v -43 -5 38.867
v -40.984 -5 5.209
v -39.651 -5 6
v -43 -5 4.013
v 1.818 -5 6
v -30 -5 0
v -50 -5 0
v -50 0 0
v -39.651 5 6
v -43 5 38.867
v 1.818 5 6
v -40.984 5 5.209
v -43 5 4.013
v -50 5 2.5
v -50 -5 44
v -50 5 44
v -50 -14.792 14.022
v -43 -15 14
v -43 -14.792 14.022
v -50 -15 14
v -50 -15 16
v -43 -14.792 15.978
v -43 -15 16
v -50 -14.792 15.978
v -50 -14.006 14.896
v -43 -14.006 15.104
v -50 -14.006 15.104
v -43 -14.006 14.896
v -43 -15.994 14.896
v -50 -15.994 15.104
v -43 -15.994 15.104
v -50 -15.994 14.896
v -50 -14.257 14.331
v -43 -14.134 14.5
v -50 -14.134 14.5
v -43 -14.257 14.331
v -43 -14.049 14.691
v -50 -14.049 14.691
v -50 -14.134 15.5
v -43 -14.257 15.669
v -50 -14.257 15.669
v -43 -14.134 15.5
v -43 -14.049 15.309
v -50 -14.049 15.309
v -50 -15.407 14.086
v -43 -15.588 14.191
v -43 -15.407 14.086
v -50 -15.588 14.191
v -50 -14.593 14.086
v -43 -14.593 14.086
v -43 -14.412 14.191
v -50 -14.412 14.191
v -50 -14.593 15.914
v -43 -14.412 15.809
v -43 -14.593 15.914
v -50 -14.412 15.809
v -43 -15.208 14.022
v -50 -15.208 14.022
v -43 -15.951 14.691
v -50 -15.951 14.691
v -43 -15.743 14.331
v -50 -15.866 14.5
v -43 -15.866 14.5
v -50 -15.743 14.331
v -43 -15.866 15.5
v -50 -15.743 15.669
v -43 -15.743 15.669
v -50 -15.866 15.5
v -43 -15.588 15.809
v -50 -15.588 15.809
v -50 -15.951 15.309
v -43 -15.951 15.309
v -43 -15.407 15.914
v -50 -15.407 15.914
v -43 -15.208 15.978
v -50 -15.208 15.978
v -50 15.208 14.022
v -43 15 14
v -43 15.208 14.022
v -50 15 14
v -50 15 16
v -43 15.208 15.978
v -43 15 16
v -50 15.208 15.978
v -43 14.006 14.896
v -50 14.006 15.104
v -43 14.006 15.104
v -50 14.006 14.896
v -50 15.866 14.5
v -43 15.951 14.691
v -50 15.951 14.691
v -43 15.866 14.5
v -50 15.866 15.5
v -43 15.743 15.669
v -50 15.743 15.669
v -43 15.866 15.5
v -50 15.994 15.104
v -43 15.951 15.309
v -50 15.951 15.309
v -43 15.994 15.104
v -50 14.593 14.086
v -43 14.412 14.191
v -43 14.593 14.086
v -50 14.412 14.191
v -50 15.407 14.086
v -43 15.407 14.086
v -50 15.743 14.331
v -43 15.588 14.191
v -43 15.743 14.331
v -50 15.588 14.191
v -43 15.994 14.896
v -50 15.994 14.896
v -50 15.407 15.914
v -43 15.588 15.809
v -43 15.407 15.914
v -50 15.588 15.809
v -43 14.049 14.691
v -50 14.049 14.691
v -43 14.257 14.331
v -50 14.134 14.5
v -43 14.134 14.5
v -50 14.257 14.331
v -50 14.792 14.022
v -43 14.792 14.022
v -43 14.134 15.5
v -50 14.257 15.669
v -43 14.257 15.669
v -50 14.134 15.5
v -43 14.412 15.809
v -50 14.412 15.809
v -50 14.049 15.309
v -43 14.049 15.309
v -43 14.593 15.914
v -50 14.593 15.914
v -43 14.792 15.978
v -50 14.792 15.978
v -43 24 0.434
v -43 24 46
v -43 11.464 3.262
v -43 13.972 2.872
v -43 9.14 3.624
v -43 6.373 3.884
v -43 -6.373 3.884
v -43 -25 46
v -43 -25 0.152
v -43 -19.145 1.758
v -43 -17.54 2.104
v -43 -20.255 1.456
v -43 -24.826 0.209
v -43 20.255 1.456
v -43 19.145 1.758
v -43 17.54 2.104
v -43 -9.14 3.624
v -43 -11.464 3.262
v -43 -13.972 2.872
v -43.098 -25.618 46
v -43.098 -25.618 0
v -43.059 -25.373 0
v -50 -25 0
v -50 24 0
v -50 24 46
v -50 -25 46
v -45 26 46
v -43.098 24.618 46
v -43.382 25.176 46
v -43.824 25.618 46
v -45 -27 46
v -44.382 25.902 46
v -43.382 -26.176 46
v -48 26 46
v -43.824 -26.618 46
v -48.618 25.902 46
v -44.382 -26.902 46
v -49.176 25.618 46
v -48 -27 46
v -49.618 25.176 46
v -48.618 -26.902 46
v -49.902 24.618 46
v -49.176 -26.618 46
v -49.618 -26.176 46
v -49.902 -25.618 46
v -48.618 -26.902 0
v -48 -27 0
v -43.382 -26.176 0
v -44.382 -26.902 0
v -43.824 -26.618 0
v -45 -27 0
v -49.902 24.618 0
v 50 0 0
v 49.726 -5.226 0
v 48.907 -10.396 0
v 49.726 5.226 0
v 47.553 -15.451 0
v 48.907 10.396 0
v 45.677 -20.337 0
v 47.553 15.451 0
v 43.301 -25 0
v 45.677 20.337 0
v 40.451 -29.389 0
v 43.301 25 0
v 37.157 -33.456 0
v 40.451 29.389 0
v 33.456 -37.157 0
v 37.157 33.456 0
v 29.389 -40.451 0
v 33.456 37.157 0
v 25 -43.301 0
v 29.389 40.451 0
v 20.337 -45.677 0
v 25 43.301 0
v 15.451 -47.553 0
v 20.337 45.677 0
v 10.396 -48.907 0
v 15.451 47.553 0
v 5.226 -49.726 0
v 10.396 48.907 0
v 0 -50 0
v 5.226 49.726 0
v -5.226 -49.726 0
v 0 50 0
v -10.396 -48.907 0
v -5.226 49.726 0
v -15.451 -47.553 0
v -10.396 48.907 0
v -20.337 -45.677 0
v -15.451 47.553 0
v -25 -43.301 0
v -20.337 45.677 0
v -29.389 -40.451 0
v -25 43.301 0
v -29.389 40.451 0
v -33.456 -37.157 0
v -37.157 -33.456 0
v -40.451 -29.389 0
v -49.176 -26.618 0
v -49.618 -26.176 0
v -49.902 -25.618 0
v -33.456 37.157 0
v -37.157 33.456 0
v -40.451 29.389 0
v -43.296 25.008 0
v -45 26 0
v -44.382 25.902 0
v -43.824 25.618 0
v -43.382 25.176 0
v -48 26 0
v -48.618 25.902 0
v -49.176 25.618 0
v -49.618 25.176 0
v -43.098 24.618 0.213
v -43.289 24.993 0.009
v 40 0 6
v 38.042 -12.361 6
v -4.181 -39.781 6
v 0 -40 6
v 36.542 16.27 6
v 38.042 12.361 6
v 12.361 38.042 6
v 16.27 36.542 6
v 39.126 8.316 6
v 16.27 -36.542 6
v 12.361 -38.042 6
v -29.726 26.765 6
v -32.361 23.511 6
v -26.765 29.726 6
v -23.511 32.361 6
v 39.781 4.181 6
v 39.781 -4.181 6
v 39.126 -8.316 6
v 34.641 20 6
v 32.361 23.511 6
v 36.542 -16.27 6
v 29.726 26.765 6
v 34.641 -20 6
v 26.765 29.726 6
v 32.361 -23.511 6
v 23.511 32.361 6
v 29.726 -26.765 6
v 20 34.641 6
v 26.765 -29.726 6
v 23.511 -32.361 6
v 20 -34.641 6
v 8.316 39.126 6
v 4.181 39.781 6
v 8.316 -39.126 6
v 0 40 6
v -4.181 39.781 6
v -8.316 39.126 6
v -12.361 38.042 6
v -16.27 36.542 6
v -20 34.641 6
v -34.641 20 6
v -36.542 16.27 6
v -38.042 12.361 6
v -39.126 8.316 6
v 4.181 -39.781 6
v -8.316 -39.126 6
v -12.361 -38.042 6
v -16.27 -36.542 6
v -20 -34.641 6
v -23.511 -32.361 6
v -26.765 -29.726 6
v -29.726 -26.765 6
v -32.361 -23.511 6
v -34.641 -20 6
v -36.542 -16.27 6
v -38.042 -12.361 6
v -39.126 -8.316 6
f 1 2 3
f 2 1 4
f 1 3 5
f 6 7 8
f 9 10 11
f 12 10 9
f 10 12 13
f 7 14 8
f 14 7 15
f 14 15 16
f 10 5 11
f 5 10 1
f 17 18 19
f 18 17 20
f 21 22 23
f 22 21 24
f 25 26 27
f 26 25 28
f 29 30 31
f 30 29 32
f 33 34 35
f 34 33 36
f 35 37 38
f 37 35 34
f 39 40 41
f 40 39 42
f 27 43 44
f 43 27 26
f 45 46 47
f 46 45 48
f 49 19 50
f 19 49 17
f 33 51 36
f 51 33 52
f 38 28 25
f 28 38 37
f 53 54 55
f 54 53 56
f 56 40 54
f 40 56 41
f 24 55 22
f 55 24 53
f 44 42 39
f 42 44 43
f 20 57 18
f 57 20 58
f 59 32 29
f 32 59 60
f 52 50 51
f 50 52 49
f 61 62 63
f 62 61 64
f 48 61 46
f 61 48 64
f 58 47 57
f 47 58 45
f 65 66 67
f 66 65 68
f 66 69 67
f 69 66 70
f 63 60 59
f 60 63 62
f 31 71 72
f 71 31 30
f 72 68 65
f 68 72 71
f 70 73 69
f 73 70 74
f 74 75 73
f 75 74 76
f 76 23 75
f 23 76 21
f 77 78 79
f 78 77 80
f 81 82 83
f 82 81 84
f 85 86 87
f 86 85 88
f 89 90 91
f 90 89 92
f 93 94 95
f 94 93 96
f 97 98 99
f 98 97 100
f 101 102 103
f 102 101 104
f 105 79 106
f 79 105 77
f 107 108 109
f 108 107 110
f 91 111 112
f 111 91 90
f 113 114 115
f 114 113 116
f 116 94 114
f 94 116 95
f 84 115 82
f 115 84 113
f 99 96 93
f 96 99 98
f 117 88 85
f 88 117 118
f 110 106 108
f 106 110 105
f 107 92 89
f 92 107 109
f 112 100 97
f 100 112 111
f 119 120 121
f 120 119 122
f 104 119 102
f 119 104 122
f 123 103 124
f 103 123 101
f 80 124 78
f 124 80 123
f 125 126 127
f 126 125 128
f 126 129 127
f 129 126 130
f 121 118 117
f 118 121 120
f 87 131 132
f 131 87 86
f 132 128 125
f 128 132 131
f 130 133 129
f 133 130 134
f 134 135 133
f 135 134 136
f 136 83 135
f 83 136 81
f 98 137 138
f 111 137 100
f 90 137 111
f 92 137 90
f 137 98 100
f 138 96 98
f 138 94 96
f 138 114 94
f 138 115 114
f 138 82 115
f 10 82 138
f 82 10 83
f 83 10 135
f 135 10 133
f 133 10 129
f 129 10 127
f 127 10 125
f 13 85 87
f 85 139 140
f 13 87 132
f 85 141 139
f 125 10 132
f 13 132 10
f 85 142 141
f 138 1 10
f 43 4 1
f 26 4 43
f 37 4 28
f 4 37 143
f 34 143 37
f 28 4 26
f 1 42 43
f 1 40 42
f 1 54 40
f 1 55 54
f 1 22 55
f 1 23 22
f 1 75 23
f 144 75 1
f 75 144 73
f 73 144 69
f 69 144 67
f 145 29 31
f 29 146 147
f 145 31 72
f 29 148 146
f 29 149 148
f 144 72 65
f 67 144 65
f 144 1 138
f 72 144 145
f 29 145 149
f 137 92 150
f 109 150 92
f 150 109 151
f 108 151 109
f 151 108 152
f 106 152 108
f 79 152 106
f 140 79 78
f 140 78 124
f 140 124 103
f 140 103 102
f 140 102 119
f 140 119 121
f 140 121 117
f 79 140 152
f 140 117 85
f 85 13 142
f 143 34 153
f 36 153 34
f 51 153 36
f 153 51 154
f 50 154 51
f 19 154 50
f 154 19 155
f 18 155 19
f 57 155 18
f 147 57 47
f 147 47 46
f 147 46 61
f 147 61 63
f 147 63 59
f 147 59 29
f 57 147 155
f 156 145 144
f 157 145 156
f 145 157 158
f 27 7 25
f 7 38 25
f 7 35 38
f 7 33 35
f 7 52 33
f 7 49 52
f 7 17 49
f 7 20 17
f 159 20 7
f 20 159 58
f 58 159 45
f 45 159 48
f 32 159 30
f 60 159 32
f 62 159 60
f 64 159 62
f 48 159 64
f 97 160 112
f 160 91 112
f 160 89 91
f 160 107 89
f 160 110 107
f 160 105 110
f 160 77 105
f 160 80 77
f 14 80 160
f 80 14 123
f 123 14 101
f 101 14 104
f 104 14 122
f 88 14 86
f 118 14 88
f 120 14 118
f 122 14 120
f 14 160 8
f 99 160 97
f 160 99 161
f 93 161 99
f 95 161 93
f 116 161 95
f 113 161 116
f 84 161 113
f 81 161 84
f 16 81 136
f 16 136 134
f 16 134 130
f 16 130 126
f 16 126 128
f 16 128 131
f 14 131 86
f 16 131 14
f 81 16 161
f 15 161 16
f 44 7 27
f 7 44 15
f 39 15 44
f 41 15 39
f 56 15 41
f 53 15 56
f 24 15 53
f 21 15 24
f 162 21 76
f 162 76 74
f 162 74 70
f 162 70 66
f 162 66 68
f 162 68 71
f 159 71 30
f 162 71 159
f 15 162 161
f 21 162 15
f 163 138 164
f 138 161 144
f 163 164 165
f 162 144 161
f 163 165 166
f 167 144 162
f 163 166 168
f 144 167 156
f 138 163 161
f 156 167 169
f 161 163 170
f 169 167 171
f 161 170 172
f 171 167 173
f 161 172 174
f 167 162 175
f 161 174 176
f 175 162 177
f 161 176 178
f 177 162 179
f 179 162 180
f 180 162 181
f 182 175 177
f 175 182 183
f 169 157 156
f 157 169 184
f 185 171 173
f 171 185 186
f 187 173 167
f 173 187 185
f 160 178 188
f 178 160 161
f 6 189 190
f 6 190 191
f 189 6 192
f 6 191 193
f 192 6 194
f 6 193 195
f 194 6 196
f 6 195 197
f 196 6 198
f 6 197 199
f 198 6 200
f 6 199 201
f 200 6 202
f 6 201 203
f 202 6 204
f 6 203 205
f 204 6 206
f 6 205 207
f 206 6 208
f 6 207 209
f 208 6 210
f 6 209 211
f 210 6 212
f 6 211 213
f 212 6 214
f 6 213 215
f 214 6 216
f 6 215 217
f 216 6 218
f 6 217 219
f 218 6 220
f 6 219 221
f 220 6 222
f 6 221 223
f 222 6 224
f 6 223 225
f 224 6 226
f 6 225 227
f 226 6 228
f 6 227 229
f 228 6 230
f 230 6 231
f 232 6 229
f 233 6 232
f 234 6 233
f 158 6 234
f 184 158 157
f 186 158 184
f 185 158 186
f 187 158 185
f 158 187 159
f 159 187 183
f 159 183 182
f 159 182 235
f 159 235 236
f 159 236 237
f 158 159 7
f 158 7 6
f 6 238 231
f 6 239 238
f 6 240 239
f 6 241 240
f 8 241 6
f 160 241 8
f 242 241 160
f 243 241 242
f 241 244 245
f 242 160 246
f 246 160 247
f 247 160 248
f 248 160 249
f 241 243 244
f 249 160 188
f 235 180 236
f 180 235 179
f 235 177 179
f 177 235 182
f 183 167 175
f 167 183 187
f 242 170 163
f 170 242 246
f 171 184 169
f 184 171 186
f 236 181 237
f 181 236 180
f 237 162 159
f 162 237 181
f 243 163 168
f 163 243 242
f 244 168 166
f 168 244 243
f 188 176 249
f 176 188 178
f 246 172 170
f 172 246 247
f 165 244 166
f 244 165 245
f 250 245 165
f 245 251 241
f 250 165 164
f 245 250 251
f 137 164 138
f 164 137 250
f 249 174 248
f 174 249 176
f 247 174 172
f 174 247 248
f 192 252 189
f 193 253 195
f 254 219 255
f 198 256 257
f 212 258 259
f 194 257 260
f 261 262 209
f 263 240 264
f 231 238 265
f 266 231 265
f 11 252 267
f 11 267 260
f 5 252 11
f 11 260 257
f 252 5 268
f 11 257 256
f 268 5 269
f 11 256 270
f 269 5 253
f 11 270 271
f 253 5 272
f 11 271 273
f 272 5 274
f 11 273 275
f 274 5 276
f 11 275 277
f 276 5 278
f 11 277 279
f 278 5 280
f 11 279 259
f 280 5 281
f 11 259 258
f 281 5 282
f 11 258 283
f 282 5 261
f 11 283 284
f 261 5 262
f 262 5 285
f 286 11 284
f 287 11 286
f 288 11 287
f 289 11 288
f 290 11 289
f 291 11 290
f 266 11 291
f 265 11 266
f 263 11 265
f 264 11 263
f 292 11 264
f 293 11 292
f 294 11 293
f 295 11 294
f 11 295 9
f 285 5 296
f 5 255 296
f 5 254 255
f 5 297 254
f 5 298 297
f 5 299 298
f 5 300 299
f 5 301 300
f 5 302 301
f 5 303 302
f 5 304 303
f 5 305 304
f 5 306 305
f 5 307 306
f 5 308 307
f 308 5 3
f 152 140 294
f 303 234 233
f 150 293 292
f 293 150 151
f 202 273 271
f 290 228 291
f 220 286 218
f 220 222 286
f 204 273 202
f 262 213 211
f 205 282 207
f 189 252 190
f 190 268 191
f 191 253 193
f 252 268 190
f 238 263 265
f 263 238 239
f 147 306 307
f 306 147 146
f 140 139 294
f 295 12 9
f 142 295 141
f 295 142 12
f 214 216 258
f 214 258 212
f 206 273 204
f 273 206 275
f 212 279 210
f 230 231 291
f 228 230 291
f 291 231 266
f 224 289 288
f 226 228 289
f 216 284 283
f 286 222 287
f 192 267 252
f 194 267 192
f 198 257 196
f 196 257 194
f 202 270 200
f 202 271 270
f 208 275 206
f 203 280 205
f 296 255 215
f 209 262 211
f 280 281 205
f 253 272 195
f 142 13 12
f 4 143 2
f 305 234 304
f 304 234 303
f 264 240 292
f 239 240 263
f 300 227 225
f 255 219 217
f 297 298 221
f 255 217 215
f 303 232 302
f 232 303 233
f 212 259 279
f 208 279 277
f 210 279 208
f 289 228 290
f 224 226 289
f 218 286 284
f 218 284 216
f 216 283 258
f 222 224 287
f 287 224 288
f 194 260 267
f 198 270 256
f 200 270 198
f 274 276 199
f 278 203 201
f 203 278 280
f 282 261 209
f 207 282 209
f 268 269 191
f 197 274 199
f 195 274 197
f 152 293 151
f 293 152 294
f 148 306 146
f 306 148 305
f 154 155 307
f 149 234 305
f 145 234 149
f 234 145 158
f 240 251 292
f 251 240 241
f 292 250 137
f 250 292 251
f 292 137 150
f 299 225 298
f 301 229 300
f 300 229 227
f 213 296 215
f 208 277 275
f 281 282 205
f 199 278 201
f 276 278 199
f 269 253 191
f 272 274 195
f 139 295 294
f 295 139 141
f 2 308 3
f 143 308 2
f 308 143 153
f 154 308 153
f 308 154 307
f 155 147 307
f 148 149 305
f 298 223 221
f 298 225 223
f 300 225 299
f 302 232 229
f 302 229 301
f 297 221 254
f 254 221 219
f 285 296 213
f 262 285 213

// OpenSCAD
// file: ../../../../../basics/rounded-edges/rounded-cube/rounded-cube.scad
/**
 *
 *  some parts of this software were inspired by
 *
 * 	     http://www.thingiverse.com/thing:9347
 *
 */

/**
 * makes a rounded cube
 */
module roundedCube(cornerRadius=4,
				   cubeCentered=false,
				   sides=30,
				   sidesOnly=false,
				   size=[20,20,2])
{
    $fn=sides;

    x = size[0] - cornerRadius/2;
    y = size[1] - cornerRadius/2;
    z = size[2];

    minkowski(size, cornerRadius)
    {
        cube(size=[x,y,z], center=cubeCentered);

        if(sidesOnly)
        {
            cylinder(r=cornerRadius);
        }
        else
        {
            sphere(r=cornerRadius);
        }
    };
}
// file: ../../wall-mounted-stand.scad
use <MCAD/shapes.scad>

use <../../../basics/rounded-edges/rounded-cube/rounded-cube.scad>

module wallMountedStand(mount_cube_xLength,
						mount_cube_yLength,
						mount_cube_zLength,
						platform_height,
						platform_segmentCount,
						platform_topRadius,
						support_xLength,
						support_zLength)
{
	union()
	{
		wallMountedStand_platform(height = platform_height,
								  segmentCount = platform_segmentCount,
							  	  topRadius = platform_topRadius);

		wallMountedStand_support(platform_topRadius = platform_topRadius,
								 support_xLength = support_xLength,
								 support_zLength = support_zLength);

		wallMountedStand_mount(cube_xLength = mount_cube_xLength,
							   cube_yLength = mount_cube_yLength,
							   cube_zLength = mount_cube_zLength,
							   platform_topRadius = platform_topRadius);
   }
}

module wallMountedStand_platform(height,
								 segmentCount,
							 	 topRadius)
{
	color("orange")
	cylinder(h=height, r1=topRadius, r2=40, $fn=segmentCount);
}

module wallMountedStand_support(platform_topRadius,
								support_xLength,
								support_zLength)
{
	echo("slooop");
	adjacent = support_zLength - 15;
	opposite = support_xLength; //platform_topRadius + 5;
	depth = 10;

	zTranslate = -platform_topRadius;

	color("green")
	translate([zTranslate, 0, 0])
	rotate([180, 90, 90])
	rightTriangle(adjacent, opposite, depth);

	echo("slooop 2");
}

module wallMountedStand_mount(cube_xLength,
							  cube_yLength,
							  cube_zLength,
							  platform_topRadius)
{
	size = [cube_xLength, cube_yLength, cube_zLength];

	cornerRadius = 2;

	xTranslate = -platform_topRadius + cornerRadius;
	yTranslate = -cube_yLength / 2.0;

	difference()
	{
		color("orange")
		translate([xTranslate, yTranslate, 0])
		roundedCube(cornerRadius = cornerRadius,
		            sides=20,
		            sidesOnly=true,
		            size=size);

		wallMountedStand_mountCutouts();
	}
}

module wallMountedStand_mountCutouts()
{
	xTranslate = -70;
	yTranslate = -15;
	zTranslate = 15;

	rotation = [0, 90, 0];

	color("purple")
	translate([xTranslate, yTranslate, zTranslate])
	rotate(rotation)
	cylinder(r=1, h = 80, $fn = 30);

	color("purple")
	translate([xTranslate, -yTranslate, zTranslate])
	rotate(rotation)
	cylinder(r=1, h = 80, $fn = 30);
}
// file: ../basic-wall-mounted-stand.scad
// This model was slightly inspired the shap of this thing:
//
//	https://www.thingiverse.com/thing:2831475

use <../wall-mounted-stand.scad>

module basicWallMountedStand(mount_cube_xLength,
							 mount_cube_yLength,
							 mount_cube_zLength,
							 platform_height,
							 platform_segmentCount,
						 	 platform_topRadius,
							 support_xLength,
						 	 support_zLength)
{
	wallMountedStand(mount_cube_xLength = mount_cube_xLength,
					 mount_cube_yLength = mount_cube_yLength,
					 mount_cube_zLength = mount_cube_zLength,
					 platform_height = platform_height,
					 platform_segmentCount = platform_segmentCount,
				 	 platform_topRadius = platform_topRadius,
					 support_xLength = support_xLength,
				 	 support_zLength = support_zLength);
}
// main file
use <../basic-wall-mounted-stand.scad>

mount_cube_xLength = 4;  // [ 2 :  20]
mount_cube_yLength = 50; // [20 : 150]
mount_cube_zLength = 45; // [20 : 150]

platform_height = 6; // [5 : 50]
platform_segmentCount = 60; // [3 : 130]
platform_topRadius = 50; // [25: 100]

support_xLength = 60; // [50 : 100]
support_zLength = 59; // [20 : 250]

basicWallMountedStand(mount_cube_xLength = mount_cube_xLength,
					  mount_cube_yLength = mount_cube_yLength,
					  mount_cube_zLength = mount_cube_zLength,
					  platform_height = platform_height,
					  platform_segmentCount = platform_segmentCount,
				  	  platform_topRadius = platform_topRadius,
					  support_xLength = support_xLength,
				  	  support_zLength = support_zLength);
